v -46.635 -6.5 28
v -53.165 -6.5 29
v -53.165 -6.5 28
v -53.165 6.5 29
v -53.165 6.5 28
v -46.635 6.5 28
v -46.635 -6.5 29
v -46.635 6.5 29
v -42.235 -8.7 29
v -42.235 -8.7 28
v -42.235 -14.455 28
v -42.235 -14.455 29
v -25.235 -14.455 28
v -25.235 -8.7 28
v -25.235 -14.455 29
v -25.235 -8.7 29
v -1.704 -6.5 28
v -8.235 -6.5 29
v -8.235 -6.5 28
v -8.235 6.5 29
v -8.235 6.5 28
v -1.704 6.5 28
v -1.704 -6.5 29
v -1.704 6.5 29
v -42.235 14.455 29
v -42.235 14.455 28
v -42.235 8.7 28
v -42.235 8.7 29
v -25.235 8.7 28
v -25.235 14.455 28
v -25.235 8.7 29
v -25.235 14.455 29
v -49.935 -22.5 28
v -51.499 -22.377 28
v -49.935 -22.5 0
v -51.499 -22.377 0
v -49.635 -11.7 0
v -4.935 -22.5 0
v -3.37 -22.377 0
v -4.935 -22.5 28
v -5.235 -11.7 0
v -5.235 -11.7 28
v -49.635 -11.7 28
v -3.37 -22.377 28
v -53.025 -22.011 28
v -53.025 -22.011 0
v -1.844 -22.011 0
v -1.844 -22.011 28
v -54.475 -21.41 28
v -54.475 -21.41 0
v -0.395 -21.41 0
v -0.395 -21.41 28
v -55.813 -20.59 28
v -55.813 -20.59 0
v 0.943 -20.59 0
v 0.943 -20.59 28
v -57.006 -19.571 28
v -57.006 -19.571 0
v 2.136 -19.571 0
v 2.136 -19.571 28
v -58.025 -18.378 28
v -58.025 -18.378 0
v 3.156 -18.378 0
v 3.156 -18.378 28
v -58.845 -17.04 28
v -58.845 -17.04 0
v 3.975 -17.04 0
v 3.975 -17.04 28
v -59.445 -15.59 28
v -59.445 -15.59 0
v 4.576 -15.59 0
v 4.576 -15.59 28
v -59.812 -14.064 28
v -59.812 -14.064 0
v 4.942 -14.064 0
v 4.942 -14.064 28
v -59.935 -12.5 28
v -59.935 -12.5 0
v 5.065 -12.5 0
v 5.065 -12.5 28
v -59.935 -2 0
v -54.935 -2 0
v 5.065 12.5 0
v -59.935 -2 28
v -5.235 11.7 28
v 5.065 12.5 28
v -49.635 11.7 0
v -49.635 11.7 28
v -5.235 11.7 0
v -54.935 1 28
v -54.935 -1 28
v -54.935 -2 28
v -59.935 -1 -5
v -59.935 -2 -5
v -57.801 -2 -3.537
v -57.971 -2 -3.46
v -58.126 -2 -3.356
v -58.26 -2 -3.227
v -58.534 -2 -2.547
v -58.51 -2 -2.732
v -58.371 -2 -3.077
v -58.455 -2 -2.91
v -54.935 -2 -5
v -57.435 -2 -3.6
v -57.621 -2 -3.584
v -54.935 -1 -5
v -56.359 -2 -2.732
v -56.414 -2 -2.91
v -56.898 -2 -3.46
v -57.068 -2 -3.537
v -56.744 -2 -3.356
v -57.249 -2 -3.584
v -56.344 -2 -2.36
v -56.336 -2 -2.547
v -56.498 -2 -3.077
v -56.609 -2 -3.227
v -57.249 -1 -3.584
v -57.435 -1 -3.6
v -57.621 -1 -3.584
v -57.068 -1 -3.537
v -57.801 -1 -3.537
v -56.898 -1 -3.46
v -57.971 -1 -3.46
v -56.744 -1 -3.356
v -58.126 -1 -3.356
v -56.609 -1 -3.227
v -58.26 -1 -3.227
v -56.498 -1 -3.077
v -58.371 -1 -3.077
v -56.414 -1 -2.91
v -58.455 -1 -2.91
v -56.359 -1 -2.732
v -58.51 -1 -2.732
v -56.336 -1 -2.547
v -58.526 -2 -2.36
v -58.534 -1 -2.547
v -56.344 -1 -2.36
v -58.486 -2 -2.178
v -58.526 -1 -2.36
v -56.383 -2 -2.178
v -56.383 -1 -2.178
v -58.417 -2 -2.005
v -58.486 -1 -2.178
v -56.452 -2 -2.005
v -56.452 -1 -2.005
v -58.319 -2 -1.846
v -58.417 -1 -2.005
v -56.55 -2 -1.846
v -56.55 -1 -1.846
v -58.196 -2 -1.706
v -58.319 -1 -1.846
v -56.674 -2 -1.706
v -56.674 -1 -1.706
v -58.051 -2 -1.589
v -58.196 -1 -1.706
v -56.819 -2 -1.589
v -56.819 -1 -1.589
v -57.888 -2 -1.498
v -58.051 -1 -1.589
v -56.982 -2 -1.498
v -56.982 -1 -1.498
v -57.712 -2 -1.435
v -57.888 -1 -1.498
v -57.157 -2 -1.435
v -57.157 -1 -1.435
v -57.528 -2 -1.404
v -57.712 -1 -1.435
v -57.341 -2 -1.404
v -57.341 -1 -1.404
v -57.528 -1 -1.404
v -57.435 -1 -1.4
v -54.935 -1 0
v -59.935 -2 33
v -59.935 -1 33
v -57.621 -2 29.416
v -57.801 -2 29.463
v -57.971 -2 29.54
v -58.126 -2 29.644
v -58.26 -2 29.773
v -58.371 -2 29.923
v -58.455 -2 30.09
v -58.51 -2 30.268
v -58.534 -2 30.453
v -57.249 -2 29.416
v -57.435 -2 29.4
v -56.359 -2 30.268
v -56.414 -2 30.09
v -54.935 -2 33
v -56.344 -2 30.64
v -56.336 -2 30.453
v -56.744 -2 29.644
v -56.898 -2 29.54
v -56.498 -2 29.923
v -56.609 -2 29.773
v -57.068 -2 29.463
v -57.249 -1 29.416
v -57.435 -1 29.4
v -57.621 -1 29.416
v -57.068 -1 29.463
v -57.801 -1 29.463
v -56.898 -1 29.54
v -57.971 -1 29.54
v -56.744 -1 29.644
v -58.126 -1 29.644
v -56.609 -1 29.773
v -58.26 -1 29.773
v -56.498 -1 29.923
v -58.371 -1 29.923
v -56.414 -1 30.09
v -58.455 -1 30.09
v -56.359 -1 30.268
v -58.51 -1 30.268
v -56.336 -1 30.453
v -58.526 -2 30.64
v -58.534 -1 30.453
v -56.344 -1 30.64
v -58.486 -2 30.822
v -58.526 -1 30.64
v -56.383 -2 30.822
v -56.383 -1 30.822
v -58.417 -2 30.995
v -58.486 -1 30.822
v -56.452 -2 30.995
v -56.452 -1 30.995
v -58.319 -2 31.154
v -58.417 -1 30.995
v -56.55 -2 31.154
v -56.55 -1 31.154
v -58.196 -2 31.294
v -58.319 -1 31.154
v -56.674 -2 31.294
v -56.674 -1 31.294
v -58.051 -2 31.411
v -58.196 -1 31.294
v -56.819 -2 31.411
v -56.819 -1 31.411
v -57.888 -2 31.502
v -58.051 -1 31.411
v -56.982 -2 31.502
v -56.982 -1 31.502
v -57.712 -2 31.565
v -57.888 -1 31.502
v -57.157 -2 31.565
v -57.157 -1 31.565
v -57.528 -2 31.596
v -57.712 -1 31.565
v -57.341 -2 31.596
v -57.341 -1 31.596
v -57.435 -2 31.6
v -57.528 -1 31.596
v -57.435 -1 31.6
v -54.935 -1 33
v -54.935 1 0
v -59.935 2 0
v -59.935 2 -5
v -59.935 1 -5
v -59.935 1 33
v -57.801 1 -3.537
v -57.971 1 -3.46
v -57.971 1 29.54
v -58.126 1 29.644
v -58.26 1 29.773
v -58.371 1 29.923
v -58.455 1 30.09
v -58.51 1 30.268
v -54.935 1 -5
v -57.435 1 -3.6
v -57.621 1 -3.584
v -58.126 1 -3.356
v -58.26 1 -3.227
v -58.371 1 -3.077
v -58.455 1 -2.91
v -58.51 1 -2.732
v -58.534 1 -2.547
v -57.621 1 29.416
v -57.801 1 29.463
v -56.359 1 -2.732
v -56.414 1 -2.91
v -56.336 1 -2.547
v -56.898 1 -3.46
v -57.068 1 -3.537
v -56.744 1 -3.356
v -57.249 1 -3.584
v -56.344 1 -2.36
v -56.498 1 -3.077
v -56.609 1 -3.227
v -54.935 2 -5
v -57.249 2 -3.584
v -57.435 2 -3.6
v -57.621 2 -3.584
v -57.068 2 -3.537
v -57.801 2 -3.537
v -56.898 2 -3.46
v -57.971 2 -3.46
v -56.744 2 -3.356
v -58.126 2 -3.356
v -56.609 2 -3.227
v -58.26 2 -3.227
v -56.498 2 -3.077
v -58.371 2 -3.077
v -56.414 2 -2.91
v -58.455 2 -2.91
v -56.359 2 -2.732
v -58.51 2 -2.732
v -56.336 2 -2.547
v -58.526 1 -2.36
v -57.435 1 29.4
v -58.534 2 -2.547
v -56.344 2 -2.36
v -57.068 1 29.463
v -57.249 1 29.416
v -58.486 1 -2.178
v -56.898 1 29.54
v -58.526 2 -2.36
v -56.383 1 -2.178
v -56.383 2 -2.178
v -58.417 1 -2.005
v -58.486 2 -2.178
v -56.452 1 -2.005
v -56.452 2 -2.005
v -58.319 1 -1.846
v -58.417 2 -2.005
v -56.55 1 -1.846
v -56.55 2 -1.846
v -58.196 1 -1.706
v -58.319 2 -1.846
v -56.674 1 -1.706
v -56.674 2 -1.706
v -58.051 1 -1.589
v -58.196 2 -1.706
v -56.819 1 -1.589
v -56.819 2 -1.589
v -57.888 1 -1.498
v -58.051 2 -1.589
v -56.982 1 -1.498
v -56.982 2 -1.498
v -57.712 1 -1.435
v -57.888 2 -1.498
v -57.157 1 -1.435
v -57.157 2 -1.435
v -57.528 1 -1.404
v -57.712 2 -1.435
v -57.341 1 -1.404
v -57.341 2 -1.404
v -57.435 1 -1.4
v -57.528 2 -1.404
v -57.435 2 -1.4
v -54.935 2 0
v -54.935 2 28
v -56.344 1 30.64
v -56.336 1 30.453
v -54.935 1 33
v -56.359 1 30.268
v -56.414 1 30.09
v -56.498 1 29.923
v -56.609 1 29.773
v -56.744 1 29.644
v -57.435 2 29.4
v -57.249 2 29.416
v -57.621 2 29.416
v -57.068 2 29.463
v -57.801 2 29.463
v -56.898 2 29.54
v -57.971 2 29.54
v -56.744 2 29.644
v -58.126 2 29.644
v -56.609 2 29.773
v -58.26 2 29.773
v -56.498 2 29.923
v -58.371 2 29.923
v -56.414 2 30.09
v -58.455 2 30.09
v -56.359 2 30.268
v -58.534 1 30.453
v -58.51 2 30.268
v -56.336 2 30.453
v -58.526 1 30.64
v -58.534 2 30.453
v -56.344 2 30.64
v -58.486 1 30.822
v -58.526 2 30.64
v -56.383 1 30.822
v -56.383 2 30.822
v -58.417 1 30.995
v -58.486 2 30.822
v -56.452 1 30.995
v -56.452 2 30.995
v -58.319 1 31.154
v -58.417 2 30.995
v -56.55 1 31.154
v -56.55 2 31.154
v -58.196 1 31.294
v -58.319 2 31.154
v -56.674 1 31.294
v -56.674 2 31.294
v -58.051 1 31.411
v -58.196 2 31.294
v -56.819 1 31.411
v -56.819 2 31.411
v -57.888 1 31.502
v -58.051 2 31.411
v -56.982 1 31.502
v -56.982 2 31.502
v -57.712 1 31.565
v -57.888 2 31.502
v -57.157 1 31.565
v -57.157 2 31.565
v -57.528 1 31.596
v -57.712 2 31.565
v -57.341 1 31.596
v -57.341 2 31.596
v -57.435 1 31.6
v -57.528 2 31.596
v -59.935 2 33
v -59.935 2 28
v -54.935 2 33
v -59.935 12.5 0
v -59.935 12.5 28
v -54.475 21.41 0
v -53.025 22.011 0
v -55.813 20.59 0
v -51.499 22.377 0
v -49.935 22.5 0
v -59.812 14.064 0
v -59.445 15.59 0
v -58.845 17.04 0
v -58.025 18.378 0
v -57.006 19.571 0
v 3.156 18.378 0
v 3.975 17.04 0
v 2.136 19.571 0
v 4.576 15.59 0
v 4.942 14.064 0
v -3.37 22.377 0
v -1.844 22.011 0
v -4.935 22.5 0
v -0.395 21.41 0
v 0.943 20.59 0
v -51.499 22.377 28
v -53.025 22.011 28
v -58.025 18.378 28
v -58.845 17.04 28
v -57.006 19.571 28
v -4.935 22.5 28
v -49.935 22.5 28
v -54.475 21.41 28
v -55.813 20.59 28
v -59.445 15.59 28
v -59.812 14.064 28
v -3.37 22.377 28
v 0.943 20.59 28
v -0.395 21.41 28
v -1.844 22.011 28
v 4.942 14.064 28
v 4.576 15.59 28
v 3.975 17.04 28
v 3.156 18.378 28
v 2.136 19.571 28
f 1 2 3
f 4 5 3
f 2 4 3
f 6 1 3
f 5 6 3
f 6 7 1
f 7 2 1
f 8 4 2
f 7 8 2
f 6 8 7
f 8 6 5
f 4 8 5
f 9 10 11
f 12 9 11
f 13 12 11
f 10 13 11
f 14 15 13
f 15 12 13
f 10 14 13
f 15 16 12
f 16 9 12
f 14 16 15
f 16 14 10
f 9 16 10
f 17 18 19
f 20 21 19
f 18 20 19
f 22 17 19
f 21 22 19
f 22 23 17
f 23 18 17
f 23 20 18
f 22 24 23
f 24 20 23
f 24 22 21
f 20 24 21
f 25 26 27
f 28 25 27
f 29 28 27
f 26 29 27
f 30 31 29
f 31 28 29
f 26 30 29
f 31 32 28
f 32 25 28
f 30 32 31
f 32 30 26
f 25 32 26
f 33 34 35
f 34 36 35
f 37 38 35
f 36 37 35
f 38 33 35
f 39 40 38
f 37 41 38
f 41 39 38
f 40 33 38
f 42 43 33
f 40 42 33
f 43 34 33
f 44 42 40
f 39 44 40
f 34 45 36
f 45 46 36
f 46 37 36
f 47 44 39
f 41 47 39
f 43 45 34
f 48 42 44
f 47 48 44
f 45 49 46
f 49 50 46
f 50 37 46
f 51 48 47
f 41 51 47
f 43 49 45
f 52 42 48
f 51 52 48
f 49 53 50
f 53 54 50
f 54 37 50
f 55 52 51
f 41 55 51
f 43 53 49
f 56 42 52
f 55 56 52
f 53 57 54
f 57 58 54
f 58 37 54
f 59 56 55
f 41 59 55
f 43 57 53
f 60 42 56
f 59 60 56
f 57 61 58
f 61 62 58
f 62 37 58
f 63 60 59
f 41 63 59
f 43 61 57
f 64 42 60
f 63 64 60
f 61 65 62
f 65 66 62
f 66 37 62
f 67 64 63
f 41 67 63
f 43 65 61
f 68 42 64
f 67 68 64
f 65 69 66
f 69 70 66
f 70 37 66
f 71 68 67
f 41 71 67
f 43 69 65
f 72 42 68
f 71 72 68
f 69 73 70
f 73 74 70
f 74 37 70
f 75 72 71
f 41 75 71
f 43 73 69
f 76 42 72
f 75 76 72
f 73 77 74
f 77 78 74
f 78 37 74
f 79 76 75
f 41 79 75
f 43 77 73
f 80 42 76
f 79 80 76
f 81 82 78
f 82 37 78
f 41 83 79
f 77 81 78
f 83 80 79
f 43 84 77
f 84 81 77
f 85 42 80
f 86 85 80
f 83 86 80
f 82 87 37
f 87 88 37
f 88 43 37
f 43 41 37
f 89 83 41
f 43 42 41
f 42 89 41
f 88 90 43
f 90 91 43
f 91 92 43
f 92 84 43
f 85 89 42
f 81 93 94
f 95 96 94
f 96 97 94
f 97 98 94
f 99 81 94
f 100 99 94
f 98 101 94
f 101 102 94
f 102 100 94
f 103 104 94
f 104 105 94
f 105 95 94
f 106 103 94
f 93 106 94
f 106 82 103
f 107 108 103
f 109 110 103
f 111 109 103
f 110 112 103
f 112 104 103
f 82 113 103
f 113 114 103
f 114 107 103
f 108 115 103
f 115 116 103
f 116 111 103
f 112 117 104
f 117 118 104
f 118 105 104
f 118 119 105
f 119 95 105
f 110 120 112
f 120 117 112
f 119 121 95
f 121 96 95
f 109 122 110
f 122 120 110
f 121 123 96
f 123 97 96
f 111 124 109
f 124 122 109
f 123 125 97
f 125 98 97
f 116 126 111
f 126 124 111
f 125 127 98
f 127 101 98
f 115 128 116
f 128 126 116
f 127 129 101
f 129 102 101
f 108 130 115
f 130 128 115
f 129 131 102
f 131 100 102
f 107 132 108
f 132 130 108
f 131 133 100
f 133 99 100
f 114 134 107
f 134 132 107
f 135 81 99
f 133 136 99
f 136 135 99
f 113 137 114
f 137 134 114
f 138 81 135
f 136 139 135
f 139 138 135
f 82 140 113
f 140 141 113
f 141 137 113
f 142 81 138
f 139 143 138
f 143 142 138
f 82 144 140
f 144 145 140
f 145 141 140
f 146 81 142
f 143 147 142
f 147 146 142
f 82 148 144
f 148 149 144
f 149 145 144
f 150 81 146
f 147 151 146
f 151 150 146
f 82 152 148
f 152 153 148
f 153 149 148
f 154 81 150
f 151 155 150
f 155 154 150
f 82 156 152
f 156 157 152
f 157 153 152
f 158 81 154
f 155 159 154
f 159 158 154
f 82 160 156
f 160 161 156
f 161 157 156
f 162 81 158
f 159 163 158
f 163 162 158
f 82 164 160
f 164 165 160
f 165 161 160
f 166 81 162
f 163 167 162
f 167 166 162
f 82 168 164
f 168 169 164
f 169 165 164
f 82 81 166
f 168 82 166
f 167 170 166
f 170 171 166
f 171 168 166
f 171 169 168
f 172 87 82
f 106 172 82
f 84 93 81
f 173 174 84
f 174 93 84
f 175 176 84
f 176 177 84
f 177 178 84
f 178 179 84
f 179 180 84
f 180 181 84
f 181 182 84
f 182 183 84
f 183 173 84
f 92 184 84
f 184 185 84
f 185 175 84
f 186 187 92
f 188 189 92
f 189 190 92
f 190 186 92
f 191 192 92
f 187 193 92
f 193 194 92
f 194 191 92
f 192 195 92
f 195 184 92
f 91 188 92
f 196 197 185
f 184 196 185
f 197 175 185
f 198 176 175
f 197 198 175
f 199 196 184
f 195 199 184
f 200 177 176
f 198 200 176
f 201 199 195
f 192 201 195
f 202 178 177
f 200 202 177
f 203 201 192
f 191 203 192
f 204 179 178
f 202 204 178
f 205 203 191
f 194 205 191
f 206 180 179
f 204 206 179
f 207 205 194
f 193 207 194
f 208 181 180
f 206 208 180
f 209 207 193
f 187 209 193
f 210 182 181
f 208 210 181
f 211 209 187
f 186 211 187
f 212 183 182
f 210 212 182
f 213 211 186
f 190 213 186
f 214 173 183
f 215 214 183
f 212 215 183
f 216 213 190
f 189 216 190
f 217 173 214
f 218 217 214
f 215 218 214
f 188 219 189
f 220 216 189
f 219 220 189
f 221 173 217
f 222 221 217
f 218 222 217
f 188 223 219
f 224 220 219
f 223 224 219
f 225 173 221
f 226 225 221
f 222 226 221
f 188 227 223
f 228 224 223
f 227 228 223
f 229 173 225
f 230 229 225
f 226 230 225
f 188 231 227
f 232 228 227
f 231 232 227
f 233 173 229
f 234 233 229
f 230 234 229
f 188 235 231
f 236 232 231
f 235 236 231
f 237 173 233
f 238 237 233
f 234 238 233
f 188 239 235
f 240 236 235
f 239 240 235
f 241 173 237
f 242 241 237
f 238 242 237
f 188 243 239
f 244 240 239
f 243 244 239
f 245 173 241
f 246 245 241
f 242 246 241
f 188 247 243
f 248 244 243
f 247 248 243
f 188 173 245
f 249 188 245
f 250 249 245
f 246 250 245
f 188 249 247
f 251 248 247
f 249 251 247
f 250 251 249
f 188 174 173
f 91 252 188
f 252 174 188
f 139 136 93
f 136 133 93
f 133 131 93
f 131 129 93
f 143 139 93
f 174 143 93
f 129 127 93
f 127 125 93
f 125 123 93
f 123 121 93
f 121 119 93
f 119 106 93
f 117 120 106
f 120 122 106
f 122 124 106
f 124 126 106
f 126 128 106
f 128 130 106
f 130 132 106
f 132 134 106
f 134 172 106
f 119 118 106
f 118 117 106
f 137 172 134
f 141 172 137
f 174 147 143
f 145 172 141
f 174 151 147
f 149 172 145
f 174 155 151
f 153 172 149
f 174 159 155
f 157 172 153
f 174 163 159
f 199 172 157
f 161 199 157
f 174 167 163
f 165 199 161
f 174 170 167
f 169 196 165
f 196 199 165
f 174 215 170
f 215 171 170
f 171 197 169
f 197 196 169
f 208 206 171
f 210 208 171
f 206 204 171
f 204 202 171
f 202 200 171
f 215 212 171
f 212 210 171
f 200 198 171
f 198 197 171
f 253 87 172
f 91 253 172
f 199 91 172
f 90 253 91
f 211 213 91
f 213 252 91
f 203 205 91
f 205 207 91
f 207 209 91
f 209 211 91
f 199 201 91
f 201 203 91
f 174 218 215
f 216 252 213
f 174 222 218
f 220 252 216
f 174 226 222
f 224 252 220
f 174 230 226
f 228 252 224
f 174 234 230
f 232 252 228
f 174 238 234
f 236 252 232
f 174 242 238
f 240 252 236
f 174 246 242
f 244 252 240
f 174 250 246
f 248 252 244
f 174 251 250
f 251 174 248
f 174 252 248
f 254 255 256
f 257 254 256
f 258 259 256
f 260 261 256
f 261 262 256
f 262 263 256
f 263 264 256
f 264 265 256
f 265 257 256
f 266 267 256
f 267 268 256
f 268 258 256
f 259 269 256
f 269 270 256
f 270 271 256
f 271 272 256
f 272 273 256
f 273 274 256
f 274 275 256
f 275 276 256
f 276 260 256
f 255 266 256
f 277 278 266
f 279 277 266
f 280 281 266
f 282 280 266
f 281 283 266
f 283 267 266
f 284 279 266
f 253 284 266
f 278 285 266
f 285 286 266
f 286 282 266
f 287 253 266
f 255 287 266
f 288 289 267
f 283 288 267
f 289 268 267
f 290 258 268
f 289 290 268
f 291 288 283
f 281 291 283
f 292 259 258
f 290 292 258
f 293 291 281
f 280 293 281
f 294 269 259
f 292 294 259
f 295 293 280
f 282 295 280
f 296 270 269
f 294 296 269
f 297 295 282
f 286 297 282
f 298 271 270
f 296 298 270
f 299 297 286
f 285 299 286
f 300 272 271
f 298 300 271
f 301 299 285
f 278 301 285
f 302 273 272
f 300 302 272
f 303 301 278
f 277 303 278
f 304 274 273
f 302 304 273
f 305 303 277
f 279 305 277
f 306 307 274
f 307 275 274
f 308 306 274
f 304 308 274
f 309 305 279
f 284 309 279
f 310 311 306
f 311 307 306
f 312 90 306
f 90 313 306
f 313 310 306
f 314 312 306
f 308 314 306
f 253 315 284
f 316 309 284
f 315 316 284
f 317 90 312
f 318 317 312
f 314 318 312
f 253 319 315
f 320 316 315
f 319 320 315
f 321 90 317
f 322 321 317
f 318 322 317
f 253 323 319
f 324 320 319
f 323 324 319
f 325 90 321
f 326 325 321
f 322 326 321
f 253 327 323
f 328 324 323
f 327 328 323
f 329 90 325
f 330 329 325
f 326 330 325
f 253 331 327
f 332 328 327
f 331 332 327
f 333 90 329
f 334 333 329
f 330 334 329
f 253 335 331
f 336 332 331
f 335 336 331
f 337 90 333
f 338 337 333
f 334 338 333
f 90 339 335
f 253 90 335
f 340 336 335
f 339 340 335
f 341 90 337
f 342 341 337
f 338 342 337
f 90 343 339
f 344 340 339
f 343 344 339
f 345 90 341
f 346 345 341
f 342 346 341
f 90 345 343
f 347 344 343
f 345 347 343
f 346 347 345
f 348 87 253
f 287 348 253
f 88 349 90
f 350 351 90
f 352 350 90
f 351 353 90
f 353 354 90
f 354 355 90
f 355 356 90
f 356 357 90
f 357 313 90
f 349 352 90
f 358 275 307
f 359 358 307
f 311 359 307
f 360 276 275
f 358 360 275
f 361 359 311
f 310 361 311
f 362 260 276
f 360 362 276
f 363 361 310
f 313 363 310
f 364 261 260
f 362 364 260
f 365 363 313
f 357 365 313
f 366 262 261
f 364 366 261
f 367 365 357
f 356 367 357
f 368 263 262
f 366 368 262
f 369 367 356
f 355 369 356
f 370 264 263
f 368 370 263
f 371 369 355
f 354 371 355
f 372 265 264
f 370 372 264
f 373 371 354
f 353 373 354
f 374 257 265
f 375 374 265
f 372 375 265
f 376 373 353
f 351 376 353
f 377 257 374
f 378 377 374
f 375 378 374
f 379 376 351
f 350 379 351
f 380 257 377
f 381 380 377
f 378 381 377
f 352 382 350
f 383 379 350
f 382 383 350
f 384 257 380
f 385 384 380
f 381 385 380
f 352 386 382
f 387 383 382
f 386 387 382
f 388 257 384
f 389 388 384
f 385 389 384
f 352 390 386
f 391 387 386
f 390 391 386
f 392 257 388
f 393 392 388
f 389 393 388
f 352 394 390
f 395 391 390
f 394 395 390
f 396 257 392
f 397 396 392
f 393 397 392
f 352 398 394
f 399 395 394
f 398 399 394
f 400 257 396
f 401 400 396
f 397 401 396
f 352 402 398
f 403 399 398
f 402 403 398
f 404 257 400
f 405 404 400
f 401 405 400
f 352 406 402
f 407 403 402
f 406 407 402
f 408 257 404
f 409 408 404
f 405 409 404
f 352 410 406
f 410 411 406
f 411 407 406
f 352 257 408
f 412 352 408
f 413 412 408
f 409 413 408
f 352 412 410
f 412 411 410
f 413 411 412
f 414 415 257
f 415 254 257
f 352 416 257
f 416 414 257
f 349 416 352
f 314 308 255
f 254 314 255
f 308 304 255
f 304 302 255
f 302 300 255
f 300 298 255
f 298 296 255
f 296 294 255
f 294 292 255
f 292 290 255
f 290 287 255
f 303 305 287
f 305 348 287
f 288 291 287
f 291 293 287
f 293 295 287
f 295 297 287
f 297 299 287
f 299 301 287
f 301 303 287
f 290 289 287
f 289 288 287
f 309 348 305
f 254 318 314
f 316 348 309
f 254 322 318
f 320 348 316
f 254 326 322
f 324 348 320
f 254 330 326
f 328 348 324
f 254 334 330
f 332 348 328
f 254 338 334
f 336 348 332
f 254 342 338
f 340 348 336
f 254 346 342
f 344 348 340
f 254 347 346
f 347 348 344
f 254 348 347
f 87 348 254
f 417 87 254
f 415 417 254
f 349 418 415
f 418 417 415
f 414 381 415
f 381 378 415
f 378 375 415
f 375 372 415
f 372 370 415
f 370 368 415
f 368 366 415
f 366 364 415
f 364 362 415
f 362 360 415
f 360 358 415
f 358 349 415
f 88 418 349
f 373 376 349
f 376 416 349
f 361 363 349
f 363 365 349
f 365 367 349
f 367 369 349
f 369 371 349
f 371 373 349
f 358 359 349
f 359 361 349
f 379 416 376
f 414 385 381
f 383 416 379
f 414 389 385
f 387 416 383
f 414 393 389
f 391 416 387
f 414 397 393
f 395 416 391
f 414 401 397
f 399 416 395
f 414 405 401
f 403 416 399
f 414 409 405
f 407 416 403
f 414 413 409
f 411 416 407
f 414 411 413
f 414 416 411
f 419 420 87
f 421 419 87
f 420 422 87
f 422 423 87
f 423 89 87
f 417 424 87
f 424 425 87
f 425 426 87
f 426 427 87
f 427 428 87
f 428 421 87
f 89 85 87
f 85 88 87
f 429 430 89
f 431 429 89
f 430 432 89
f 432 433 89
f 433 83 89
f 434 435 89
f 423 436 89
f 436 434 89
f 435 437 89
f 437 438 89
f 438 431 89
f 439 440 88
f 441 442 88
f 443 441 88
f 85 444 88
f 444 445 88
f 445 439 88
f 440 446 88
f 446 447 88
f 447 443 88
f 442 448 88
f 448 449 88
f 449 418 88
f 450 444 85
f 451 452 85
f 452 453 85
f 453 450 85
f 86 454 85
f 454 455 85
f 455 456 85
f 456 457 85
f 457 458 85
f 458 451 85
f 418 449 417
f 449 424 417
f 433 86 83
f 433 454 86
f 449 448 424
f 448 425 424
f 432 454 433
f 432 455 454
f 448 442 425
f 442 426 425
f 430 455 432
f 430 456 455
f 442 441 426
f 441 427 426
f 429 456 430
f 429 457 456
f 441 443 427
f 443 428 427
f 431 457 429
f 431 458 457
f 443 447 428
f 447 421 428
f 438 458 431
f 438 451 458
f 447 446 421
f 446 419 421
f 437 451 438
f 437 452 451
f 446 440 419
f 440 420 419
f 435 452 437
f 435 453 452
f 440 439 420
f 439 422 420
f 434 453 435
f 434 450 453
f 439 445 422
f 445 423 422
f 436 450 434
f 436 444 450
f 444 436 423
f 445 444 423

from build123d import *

# Parameters (mm, degrees)
SKETCH_1_W               = 65
SKETCH_1_H               = 45
EXTRUDE_1_DEPTH          = 28
SKETCH_2_W               = 44.4
SKETCH_2_H               = 23.4
CUT_EXTRUDE_1_DEPTH      = 39
FILLET_1_R               = 10
FILLET_2_R               = 10
FILLET_3_R               = 10
FILLET_4_R               = 10
EXTRUDE_6_DEPTH          = 1
EXTRUDE_6_2_DEPTH        = 1
EXTRUDE_6_3_DEPTH        = 1
SKETCH_10_W              = 17
SKETCH_10_H              = 5.754584259
EXTRUDE_6_4_DEPTH        = 1
SKETCH_19_W              = 5
SKETCH_19_H              = 30.097075205
CUT_EXTRUDE_3_DEPTH      = 1
CUT_EXTRUDE_3_DEPTH_BACK = 1
SKETCH_20_W              = 5
SKETCH_20_H              = 1
EXTRUDE_12_DEPTH         = 5
SKETCH_21_W              = 5
SKETCH_21_H              = 1
EXTRUDE_13_DEPTH         = 5
SKETCH_22_R              = 1.1
CUT_EXTRUDE_4_DEPTH      = 5
CUT_EXTRUDE_4_DEPTH_BACK = 5


with BuildPart() as part:
    # 草圖1 → 填料-伸長1 (new body)
    with BuildSketch(Plane.XY):
        with Locations((-27.434655272, 0)):
            Rectangle(SKETCH_1_W, SKETCH_1_H)
    extrude(amount=EXTRUDE_1_DEPTH)

    # 草圖2 → 除料-伸長1 (cut)
    with BuildSketch(Plane.XY):
        with Locations((-27.434655272, 0)):
            Rectangle(SKETCH_2_W, SKETCH_2_H)
    extrude(amount=CUT_EXTRUDE_1_DEPTH, mode=Mode.SUBTRACT)

    # 圓角1
    fillet_1_edges = [part.edges().sort_by_distance(p)[0] for p in [
        (-59.934655272, -22.5, 14),
    ]]
    fillet(fillet_1_edges, radius=FILLET_1_R)

    # 圓角2
    fillet_2_edges = [part.edges().sort_by_distance(p)[0] for p in [
        (-59.934655272, 22.5, 14),
    ]]
    fillet(fillet_2_edges, radius=FILLET_2_R)

    # 圓角3
    fillet_3_edges = [part.edges().sort_by_distance(p)[0] for p in [
        (5.065344728, 22.5, 14),
    ]]
    fillet(fillet_3_edges, radius=FILLET_3_R)

    # 圓角4
    fillet_4_edges = [part.edges().sort_by_distance(p)[0] for p in [
        (5.065344728, -22.5, 14),
    ]]
    fillet(fillet_4_edges, radius=FILLET_4_R)

    # 草圖19 → 除料-伸長3 (cut, two sides)
    with BuildSketch(Plane(origin=(0, 0, 0), x_dir=(1, 0, 0), z_dir=(0, 1, 0))) as cut_extrude_3_sk:
        with Locations((-57.434655272, -13.951462398)):
            Rectangle(SKETCH_19_W, SKETCH_19_H)
    extrude(amount=CUT_EXTRUDE_3_DEPTH, mode=Mode.SUBTRACT)
    extrude(cut_extrude_3_sk.sketch, amount=-CUT_EXTRUDE_3_DEPTH_BACK, mode=Mode.SUBTRACT)

    # 草圖20 → 填料-伸長12 (add)
    with BuildSketch(Plane.XY):
        with Locations((-57.434655272, 1.5)):
            Rectangle(SKETCH_20_W, SKETCH_20_H)
        with Locations((-57.434655272, -1.5)):
            Rectangle(SKETCH_20_W, SKETCH_20_H)
    extrude(amount=-EXTRUDE_12_DEPTH)

    # 草圖21 → 填料-伸長13 (add)
    with BuildSketch(Plane.XY.offset(28)):
        with Locations((-57.434655272, 1.5)):
            Rectangle(SKETCH_21_W, SKETCH_21_H)
        with Locations((-57.434655272, -1.5)):
            Rectangle(SKETCH_21_W, SKETCH_21_H)
    extrude(amount=EXTRUDE_13_DEPTH)

    # 草圖22 → 除料-伸長4 (cut, two sides)
    with BuildSketch(Plane(origin=(0, 0, 0), x_dir=(1, 0, 0), z_dir=(0, 1, 0))) as cut_extrude_4_sk:
        with Locations((-57.434655272, -30.5)):
            Circle(SKETCH_22_R)
        with Locations((-57.434655272, 2.5)):
            Circle(SKETCH_22_R)
    extrude(amount=CUT_EXTRUDE_4_DEPTH, mode=Mode.SUBTRACT)
    extrude(cut_extrude_4_sk.sketch, amount=-CUT_EXTRUDE_4_DEPTH_BACK, mode=Mode.SUBTRACT)


with BuildPart() as body_2:
    # 草圖10 → 填料-伸長6 (new body)
    with BuildSketch(Plane.XY.offset(29)):
        Polygon((-49.634655272, 6.5), (-53.165057103, 6.5), (-53.165057103, -6.5), (-46.634655272, -6.5), (-46.634655272, 6.5), align=None)
    extrude(amount=-EXTRUDE_6_DEPTH)


with BuildPart() as body_3:
    # 草圖10 → Extrude 6 2 (new body)
    with BuildSketch(Plane.XY.offset(29)):
        Polygon((-42.234655272, -11.7), (-42.234655272, -8.7), (-25.234655272, -8.7), (-25.234655272, -14.454584259), (-42.234655272, -14.454584259), align=None)
    extrude(amount=-EXTRUDE_6_2_DEPTH)


with BuildPart() as body_4:
    # 草圖10 → Extrude 6 3 (new body)
    with BuildSketch(Plane.XY.offset(29)):
        Polygon((-8.234655272, 6.5), (-8.234655272, -6.5), (-5.234655272, -6.5), (-1.70425344, -6.5), (-1.70425344, 6.5), align=None)
    extrude(amount=-EXTRUDE_6_3_DEPTH)


with BuildPart() as body_5:
    # 草圖10 → Extrude 6 4 (new body)
    with BuildSketch(Plane.XY.offset(29)):
        with Locations((-33.734655272, 11.57729213)):
            Rectangle(SKETCH_10_W, SKETCH_10_H)
    extrude(amount=-EXTRUDE_6_4_DEPTH)


solid = Compound([part.part, body_2.part, body_3.part, body_4.part, body_5.part])
